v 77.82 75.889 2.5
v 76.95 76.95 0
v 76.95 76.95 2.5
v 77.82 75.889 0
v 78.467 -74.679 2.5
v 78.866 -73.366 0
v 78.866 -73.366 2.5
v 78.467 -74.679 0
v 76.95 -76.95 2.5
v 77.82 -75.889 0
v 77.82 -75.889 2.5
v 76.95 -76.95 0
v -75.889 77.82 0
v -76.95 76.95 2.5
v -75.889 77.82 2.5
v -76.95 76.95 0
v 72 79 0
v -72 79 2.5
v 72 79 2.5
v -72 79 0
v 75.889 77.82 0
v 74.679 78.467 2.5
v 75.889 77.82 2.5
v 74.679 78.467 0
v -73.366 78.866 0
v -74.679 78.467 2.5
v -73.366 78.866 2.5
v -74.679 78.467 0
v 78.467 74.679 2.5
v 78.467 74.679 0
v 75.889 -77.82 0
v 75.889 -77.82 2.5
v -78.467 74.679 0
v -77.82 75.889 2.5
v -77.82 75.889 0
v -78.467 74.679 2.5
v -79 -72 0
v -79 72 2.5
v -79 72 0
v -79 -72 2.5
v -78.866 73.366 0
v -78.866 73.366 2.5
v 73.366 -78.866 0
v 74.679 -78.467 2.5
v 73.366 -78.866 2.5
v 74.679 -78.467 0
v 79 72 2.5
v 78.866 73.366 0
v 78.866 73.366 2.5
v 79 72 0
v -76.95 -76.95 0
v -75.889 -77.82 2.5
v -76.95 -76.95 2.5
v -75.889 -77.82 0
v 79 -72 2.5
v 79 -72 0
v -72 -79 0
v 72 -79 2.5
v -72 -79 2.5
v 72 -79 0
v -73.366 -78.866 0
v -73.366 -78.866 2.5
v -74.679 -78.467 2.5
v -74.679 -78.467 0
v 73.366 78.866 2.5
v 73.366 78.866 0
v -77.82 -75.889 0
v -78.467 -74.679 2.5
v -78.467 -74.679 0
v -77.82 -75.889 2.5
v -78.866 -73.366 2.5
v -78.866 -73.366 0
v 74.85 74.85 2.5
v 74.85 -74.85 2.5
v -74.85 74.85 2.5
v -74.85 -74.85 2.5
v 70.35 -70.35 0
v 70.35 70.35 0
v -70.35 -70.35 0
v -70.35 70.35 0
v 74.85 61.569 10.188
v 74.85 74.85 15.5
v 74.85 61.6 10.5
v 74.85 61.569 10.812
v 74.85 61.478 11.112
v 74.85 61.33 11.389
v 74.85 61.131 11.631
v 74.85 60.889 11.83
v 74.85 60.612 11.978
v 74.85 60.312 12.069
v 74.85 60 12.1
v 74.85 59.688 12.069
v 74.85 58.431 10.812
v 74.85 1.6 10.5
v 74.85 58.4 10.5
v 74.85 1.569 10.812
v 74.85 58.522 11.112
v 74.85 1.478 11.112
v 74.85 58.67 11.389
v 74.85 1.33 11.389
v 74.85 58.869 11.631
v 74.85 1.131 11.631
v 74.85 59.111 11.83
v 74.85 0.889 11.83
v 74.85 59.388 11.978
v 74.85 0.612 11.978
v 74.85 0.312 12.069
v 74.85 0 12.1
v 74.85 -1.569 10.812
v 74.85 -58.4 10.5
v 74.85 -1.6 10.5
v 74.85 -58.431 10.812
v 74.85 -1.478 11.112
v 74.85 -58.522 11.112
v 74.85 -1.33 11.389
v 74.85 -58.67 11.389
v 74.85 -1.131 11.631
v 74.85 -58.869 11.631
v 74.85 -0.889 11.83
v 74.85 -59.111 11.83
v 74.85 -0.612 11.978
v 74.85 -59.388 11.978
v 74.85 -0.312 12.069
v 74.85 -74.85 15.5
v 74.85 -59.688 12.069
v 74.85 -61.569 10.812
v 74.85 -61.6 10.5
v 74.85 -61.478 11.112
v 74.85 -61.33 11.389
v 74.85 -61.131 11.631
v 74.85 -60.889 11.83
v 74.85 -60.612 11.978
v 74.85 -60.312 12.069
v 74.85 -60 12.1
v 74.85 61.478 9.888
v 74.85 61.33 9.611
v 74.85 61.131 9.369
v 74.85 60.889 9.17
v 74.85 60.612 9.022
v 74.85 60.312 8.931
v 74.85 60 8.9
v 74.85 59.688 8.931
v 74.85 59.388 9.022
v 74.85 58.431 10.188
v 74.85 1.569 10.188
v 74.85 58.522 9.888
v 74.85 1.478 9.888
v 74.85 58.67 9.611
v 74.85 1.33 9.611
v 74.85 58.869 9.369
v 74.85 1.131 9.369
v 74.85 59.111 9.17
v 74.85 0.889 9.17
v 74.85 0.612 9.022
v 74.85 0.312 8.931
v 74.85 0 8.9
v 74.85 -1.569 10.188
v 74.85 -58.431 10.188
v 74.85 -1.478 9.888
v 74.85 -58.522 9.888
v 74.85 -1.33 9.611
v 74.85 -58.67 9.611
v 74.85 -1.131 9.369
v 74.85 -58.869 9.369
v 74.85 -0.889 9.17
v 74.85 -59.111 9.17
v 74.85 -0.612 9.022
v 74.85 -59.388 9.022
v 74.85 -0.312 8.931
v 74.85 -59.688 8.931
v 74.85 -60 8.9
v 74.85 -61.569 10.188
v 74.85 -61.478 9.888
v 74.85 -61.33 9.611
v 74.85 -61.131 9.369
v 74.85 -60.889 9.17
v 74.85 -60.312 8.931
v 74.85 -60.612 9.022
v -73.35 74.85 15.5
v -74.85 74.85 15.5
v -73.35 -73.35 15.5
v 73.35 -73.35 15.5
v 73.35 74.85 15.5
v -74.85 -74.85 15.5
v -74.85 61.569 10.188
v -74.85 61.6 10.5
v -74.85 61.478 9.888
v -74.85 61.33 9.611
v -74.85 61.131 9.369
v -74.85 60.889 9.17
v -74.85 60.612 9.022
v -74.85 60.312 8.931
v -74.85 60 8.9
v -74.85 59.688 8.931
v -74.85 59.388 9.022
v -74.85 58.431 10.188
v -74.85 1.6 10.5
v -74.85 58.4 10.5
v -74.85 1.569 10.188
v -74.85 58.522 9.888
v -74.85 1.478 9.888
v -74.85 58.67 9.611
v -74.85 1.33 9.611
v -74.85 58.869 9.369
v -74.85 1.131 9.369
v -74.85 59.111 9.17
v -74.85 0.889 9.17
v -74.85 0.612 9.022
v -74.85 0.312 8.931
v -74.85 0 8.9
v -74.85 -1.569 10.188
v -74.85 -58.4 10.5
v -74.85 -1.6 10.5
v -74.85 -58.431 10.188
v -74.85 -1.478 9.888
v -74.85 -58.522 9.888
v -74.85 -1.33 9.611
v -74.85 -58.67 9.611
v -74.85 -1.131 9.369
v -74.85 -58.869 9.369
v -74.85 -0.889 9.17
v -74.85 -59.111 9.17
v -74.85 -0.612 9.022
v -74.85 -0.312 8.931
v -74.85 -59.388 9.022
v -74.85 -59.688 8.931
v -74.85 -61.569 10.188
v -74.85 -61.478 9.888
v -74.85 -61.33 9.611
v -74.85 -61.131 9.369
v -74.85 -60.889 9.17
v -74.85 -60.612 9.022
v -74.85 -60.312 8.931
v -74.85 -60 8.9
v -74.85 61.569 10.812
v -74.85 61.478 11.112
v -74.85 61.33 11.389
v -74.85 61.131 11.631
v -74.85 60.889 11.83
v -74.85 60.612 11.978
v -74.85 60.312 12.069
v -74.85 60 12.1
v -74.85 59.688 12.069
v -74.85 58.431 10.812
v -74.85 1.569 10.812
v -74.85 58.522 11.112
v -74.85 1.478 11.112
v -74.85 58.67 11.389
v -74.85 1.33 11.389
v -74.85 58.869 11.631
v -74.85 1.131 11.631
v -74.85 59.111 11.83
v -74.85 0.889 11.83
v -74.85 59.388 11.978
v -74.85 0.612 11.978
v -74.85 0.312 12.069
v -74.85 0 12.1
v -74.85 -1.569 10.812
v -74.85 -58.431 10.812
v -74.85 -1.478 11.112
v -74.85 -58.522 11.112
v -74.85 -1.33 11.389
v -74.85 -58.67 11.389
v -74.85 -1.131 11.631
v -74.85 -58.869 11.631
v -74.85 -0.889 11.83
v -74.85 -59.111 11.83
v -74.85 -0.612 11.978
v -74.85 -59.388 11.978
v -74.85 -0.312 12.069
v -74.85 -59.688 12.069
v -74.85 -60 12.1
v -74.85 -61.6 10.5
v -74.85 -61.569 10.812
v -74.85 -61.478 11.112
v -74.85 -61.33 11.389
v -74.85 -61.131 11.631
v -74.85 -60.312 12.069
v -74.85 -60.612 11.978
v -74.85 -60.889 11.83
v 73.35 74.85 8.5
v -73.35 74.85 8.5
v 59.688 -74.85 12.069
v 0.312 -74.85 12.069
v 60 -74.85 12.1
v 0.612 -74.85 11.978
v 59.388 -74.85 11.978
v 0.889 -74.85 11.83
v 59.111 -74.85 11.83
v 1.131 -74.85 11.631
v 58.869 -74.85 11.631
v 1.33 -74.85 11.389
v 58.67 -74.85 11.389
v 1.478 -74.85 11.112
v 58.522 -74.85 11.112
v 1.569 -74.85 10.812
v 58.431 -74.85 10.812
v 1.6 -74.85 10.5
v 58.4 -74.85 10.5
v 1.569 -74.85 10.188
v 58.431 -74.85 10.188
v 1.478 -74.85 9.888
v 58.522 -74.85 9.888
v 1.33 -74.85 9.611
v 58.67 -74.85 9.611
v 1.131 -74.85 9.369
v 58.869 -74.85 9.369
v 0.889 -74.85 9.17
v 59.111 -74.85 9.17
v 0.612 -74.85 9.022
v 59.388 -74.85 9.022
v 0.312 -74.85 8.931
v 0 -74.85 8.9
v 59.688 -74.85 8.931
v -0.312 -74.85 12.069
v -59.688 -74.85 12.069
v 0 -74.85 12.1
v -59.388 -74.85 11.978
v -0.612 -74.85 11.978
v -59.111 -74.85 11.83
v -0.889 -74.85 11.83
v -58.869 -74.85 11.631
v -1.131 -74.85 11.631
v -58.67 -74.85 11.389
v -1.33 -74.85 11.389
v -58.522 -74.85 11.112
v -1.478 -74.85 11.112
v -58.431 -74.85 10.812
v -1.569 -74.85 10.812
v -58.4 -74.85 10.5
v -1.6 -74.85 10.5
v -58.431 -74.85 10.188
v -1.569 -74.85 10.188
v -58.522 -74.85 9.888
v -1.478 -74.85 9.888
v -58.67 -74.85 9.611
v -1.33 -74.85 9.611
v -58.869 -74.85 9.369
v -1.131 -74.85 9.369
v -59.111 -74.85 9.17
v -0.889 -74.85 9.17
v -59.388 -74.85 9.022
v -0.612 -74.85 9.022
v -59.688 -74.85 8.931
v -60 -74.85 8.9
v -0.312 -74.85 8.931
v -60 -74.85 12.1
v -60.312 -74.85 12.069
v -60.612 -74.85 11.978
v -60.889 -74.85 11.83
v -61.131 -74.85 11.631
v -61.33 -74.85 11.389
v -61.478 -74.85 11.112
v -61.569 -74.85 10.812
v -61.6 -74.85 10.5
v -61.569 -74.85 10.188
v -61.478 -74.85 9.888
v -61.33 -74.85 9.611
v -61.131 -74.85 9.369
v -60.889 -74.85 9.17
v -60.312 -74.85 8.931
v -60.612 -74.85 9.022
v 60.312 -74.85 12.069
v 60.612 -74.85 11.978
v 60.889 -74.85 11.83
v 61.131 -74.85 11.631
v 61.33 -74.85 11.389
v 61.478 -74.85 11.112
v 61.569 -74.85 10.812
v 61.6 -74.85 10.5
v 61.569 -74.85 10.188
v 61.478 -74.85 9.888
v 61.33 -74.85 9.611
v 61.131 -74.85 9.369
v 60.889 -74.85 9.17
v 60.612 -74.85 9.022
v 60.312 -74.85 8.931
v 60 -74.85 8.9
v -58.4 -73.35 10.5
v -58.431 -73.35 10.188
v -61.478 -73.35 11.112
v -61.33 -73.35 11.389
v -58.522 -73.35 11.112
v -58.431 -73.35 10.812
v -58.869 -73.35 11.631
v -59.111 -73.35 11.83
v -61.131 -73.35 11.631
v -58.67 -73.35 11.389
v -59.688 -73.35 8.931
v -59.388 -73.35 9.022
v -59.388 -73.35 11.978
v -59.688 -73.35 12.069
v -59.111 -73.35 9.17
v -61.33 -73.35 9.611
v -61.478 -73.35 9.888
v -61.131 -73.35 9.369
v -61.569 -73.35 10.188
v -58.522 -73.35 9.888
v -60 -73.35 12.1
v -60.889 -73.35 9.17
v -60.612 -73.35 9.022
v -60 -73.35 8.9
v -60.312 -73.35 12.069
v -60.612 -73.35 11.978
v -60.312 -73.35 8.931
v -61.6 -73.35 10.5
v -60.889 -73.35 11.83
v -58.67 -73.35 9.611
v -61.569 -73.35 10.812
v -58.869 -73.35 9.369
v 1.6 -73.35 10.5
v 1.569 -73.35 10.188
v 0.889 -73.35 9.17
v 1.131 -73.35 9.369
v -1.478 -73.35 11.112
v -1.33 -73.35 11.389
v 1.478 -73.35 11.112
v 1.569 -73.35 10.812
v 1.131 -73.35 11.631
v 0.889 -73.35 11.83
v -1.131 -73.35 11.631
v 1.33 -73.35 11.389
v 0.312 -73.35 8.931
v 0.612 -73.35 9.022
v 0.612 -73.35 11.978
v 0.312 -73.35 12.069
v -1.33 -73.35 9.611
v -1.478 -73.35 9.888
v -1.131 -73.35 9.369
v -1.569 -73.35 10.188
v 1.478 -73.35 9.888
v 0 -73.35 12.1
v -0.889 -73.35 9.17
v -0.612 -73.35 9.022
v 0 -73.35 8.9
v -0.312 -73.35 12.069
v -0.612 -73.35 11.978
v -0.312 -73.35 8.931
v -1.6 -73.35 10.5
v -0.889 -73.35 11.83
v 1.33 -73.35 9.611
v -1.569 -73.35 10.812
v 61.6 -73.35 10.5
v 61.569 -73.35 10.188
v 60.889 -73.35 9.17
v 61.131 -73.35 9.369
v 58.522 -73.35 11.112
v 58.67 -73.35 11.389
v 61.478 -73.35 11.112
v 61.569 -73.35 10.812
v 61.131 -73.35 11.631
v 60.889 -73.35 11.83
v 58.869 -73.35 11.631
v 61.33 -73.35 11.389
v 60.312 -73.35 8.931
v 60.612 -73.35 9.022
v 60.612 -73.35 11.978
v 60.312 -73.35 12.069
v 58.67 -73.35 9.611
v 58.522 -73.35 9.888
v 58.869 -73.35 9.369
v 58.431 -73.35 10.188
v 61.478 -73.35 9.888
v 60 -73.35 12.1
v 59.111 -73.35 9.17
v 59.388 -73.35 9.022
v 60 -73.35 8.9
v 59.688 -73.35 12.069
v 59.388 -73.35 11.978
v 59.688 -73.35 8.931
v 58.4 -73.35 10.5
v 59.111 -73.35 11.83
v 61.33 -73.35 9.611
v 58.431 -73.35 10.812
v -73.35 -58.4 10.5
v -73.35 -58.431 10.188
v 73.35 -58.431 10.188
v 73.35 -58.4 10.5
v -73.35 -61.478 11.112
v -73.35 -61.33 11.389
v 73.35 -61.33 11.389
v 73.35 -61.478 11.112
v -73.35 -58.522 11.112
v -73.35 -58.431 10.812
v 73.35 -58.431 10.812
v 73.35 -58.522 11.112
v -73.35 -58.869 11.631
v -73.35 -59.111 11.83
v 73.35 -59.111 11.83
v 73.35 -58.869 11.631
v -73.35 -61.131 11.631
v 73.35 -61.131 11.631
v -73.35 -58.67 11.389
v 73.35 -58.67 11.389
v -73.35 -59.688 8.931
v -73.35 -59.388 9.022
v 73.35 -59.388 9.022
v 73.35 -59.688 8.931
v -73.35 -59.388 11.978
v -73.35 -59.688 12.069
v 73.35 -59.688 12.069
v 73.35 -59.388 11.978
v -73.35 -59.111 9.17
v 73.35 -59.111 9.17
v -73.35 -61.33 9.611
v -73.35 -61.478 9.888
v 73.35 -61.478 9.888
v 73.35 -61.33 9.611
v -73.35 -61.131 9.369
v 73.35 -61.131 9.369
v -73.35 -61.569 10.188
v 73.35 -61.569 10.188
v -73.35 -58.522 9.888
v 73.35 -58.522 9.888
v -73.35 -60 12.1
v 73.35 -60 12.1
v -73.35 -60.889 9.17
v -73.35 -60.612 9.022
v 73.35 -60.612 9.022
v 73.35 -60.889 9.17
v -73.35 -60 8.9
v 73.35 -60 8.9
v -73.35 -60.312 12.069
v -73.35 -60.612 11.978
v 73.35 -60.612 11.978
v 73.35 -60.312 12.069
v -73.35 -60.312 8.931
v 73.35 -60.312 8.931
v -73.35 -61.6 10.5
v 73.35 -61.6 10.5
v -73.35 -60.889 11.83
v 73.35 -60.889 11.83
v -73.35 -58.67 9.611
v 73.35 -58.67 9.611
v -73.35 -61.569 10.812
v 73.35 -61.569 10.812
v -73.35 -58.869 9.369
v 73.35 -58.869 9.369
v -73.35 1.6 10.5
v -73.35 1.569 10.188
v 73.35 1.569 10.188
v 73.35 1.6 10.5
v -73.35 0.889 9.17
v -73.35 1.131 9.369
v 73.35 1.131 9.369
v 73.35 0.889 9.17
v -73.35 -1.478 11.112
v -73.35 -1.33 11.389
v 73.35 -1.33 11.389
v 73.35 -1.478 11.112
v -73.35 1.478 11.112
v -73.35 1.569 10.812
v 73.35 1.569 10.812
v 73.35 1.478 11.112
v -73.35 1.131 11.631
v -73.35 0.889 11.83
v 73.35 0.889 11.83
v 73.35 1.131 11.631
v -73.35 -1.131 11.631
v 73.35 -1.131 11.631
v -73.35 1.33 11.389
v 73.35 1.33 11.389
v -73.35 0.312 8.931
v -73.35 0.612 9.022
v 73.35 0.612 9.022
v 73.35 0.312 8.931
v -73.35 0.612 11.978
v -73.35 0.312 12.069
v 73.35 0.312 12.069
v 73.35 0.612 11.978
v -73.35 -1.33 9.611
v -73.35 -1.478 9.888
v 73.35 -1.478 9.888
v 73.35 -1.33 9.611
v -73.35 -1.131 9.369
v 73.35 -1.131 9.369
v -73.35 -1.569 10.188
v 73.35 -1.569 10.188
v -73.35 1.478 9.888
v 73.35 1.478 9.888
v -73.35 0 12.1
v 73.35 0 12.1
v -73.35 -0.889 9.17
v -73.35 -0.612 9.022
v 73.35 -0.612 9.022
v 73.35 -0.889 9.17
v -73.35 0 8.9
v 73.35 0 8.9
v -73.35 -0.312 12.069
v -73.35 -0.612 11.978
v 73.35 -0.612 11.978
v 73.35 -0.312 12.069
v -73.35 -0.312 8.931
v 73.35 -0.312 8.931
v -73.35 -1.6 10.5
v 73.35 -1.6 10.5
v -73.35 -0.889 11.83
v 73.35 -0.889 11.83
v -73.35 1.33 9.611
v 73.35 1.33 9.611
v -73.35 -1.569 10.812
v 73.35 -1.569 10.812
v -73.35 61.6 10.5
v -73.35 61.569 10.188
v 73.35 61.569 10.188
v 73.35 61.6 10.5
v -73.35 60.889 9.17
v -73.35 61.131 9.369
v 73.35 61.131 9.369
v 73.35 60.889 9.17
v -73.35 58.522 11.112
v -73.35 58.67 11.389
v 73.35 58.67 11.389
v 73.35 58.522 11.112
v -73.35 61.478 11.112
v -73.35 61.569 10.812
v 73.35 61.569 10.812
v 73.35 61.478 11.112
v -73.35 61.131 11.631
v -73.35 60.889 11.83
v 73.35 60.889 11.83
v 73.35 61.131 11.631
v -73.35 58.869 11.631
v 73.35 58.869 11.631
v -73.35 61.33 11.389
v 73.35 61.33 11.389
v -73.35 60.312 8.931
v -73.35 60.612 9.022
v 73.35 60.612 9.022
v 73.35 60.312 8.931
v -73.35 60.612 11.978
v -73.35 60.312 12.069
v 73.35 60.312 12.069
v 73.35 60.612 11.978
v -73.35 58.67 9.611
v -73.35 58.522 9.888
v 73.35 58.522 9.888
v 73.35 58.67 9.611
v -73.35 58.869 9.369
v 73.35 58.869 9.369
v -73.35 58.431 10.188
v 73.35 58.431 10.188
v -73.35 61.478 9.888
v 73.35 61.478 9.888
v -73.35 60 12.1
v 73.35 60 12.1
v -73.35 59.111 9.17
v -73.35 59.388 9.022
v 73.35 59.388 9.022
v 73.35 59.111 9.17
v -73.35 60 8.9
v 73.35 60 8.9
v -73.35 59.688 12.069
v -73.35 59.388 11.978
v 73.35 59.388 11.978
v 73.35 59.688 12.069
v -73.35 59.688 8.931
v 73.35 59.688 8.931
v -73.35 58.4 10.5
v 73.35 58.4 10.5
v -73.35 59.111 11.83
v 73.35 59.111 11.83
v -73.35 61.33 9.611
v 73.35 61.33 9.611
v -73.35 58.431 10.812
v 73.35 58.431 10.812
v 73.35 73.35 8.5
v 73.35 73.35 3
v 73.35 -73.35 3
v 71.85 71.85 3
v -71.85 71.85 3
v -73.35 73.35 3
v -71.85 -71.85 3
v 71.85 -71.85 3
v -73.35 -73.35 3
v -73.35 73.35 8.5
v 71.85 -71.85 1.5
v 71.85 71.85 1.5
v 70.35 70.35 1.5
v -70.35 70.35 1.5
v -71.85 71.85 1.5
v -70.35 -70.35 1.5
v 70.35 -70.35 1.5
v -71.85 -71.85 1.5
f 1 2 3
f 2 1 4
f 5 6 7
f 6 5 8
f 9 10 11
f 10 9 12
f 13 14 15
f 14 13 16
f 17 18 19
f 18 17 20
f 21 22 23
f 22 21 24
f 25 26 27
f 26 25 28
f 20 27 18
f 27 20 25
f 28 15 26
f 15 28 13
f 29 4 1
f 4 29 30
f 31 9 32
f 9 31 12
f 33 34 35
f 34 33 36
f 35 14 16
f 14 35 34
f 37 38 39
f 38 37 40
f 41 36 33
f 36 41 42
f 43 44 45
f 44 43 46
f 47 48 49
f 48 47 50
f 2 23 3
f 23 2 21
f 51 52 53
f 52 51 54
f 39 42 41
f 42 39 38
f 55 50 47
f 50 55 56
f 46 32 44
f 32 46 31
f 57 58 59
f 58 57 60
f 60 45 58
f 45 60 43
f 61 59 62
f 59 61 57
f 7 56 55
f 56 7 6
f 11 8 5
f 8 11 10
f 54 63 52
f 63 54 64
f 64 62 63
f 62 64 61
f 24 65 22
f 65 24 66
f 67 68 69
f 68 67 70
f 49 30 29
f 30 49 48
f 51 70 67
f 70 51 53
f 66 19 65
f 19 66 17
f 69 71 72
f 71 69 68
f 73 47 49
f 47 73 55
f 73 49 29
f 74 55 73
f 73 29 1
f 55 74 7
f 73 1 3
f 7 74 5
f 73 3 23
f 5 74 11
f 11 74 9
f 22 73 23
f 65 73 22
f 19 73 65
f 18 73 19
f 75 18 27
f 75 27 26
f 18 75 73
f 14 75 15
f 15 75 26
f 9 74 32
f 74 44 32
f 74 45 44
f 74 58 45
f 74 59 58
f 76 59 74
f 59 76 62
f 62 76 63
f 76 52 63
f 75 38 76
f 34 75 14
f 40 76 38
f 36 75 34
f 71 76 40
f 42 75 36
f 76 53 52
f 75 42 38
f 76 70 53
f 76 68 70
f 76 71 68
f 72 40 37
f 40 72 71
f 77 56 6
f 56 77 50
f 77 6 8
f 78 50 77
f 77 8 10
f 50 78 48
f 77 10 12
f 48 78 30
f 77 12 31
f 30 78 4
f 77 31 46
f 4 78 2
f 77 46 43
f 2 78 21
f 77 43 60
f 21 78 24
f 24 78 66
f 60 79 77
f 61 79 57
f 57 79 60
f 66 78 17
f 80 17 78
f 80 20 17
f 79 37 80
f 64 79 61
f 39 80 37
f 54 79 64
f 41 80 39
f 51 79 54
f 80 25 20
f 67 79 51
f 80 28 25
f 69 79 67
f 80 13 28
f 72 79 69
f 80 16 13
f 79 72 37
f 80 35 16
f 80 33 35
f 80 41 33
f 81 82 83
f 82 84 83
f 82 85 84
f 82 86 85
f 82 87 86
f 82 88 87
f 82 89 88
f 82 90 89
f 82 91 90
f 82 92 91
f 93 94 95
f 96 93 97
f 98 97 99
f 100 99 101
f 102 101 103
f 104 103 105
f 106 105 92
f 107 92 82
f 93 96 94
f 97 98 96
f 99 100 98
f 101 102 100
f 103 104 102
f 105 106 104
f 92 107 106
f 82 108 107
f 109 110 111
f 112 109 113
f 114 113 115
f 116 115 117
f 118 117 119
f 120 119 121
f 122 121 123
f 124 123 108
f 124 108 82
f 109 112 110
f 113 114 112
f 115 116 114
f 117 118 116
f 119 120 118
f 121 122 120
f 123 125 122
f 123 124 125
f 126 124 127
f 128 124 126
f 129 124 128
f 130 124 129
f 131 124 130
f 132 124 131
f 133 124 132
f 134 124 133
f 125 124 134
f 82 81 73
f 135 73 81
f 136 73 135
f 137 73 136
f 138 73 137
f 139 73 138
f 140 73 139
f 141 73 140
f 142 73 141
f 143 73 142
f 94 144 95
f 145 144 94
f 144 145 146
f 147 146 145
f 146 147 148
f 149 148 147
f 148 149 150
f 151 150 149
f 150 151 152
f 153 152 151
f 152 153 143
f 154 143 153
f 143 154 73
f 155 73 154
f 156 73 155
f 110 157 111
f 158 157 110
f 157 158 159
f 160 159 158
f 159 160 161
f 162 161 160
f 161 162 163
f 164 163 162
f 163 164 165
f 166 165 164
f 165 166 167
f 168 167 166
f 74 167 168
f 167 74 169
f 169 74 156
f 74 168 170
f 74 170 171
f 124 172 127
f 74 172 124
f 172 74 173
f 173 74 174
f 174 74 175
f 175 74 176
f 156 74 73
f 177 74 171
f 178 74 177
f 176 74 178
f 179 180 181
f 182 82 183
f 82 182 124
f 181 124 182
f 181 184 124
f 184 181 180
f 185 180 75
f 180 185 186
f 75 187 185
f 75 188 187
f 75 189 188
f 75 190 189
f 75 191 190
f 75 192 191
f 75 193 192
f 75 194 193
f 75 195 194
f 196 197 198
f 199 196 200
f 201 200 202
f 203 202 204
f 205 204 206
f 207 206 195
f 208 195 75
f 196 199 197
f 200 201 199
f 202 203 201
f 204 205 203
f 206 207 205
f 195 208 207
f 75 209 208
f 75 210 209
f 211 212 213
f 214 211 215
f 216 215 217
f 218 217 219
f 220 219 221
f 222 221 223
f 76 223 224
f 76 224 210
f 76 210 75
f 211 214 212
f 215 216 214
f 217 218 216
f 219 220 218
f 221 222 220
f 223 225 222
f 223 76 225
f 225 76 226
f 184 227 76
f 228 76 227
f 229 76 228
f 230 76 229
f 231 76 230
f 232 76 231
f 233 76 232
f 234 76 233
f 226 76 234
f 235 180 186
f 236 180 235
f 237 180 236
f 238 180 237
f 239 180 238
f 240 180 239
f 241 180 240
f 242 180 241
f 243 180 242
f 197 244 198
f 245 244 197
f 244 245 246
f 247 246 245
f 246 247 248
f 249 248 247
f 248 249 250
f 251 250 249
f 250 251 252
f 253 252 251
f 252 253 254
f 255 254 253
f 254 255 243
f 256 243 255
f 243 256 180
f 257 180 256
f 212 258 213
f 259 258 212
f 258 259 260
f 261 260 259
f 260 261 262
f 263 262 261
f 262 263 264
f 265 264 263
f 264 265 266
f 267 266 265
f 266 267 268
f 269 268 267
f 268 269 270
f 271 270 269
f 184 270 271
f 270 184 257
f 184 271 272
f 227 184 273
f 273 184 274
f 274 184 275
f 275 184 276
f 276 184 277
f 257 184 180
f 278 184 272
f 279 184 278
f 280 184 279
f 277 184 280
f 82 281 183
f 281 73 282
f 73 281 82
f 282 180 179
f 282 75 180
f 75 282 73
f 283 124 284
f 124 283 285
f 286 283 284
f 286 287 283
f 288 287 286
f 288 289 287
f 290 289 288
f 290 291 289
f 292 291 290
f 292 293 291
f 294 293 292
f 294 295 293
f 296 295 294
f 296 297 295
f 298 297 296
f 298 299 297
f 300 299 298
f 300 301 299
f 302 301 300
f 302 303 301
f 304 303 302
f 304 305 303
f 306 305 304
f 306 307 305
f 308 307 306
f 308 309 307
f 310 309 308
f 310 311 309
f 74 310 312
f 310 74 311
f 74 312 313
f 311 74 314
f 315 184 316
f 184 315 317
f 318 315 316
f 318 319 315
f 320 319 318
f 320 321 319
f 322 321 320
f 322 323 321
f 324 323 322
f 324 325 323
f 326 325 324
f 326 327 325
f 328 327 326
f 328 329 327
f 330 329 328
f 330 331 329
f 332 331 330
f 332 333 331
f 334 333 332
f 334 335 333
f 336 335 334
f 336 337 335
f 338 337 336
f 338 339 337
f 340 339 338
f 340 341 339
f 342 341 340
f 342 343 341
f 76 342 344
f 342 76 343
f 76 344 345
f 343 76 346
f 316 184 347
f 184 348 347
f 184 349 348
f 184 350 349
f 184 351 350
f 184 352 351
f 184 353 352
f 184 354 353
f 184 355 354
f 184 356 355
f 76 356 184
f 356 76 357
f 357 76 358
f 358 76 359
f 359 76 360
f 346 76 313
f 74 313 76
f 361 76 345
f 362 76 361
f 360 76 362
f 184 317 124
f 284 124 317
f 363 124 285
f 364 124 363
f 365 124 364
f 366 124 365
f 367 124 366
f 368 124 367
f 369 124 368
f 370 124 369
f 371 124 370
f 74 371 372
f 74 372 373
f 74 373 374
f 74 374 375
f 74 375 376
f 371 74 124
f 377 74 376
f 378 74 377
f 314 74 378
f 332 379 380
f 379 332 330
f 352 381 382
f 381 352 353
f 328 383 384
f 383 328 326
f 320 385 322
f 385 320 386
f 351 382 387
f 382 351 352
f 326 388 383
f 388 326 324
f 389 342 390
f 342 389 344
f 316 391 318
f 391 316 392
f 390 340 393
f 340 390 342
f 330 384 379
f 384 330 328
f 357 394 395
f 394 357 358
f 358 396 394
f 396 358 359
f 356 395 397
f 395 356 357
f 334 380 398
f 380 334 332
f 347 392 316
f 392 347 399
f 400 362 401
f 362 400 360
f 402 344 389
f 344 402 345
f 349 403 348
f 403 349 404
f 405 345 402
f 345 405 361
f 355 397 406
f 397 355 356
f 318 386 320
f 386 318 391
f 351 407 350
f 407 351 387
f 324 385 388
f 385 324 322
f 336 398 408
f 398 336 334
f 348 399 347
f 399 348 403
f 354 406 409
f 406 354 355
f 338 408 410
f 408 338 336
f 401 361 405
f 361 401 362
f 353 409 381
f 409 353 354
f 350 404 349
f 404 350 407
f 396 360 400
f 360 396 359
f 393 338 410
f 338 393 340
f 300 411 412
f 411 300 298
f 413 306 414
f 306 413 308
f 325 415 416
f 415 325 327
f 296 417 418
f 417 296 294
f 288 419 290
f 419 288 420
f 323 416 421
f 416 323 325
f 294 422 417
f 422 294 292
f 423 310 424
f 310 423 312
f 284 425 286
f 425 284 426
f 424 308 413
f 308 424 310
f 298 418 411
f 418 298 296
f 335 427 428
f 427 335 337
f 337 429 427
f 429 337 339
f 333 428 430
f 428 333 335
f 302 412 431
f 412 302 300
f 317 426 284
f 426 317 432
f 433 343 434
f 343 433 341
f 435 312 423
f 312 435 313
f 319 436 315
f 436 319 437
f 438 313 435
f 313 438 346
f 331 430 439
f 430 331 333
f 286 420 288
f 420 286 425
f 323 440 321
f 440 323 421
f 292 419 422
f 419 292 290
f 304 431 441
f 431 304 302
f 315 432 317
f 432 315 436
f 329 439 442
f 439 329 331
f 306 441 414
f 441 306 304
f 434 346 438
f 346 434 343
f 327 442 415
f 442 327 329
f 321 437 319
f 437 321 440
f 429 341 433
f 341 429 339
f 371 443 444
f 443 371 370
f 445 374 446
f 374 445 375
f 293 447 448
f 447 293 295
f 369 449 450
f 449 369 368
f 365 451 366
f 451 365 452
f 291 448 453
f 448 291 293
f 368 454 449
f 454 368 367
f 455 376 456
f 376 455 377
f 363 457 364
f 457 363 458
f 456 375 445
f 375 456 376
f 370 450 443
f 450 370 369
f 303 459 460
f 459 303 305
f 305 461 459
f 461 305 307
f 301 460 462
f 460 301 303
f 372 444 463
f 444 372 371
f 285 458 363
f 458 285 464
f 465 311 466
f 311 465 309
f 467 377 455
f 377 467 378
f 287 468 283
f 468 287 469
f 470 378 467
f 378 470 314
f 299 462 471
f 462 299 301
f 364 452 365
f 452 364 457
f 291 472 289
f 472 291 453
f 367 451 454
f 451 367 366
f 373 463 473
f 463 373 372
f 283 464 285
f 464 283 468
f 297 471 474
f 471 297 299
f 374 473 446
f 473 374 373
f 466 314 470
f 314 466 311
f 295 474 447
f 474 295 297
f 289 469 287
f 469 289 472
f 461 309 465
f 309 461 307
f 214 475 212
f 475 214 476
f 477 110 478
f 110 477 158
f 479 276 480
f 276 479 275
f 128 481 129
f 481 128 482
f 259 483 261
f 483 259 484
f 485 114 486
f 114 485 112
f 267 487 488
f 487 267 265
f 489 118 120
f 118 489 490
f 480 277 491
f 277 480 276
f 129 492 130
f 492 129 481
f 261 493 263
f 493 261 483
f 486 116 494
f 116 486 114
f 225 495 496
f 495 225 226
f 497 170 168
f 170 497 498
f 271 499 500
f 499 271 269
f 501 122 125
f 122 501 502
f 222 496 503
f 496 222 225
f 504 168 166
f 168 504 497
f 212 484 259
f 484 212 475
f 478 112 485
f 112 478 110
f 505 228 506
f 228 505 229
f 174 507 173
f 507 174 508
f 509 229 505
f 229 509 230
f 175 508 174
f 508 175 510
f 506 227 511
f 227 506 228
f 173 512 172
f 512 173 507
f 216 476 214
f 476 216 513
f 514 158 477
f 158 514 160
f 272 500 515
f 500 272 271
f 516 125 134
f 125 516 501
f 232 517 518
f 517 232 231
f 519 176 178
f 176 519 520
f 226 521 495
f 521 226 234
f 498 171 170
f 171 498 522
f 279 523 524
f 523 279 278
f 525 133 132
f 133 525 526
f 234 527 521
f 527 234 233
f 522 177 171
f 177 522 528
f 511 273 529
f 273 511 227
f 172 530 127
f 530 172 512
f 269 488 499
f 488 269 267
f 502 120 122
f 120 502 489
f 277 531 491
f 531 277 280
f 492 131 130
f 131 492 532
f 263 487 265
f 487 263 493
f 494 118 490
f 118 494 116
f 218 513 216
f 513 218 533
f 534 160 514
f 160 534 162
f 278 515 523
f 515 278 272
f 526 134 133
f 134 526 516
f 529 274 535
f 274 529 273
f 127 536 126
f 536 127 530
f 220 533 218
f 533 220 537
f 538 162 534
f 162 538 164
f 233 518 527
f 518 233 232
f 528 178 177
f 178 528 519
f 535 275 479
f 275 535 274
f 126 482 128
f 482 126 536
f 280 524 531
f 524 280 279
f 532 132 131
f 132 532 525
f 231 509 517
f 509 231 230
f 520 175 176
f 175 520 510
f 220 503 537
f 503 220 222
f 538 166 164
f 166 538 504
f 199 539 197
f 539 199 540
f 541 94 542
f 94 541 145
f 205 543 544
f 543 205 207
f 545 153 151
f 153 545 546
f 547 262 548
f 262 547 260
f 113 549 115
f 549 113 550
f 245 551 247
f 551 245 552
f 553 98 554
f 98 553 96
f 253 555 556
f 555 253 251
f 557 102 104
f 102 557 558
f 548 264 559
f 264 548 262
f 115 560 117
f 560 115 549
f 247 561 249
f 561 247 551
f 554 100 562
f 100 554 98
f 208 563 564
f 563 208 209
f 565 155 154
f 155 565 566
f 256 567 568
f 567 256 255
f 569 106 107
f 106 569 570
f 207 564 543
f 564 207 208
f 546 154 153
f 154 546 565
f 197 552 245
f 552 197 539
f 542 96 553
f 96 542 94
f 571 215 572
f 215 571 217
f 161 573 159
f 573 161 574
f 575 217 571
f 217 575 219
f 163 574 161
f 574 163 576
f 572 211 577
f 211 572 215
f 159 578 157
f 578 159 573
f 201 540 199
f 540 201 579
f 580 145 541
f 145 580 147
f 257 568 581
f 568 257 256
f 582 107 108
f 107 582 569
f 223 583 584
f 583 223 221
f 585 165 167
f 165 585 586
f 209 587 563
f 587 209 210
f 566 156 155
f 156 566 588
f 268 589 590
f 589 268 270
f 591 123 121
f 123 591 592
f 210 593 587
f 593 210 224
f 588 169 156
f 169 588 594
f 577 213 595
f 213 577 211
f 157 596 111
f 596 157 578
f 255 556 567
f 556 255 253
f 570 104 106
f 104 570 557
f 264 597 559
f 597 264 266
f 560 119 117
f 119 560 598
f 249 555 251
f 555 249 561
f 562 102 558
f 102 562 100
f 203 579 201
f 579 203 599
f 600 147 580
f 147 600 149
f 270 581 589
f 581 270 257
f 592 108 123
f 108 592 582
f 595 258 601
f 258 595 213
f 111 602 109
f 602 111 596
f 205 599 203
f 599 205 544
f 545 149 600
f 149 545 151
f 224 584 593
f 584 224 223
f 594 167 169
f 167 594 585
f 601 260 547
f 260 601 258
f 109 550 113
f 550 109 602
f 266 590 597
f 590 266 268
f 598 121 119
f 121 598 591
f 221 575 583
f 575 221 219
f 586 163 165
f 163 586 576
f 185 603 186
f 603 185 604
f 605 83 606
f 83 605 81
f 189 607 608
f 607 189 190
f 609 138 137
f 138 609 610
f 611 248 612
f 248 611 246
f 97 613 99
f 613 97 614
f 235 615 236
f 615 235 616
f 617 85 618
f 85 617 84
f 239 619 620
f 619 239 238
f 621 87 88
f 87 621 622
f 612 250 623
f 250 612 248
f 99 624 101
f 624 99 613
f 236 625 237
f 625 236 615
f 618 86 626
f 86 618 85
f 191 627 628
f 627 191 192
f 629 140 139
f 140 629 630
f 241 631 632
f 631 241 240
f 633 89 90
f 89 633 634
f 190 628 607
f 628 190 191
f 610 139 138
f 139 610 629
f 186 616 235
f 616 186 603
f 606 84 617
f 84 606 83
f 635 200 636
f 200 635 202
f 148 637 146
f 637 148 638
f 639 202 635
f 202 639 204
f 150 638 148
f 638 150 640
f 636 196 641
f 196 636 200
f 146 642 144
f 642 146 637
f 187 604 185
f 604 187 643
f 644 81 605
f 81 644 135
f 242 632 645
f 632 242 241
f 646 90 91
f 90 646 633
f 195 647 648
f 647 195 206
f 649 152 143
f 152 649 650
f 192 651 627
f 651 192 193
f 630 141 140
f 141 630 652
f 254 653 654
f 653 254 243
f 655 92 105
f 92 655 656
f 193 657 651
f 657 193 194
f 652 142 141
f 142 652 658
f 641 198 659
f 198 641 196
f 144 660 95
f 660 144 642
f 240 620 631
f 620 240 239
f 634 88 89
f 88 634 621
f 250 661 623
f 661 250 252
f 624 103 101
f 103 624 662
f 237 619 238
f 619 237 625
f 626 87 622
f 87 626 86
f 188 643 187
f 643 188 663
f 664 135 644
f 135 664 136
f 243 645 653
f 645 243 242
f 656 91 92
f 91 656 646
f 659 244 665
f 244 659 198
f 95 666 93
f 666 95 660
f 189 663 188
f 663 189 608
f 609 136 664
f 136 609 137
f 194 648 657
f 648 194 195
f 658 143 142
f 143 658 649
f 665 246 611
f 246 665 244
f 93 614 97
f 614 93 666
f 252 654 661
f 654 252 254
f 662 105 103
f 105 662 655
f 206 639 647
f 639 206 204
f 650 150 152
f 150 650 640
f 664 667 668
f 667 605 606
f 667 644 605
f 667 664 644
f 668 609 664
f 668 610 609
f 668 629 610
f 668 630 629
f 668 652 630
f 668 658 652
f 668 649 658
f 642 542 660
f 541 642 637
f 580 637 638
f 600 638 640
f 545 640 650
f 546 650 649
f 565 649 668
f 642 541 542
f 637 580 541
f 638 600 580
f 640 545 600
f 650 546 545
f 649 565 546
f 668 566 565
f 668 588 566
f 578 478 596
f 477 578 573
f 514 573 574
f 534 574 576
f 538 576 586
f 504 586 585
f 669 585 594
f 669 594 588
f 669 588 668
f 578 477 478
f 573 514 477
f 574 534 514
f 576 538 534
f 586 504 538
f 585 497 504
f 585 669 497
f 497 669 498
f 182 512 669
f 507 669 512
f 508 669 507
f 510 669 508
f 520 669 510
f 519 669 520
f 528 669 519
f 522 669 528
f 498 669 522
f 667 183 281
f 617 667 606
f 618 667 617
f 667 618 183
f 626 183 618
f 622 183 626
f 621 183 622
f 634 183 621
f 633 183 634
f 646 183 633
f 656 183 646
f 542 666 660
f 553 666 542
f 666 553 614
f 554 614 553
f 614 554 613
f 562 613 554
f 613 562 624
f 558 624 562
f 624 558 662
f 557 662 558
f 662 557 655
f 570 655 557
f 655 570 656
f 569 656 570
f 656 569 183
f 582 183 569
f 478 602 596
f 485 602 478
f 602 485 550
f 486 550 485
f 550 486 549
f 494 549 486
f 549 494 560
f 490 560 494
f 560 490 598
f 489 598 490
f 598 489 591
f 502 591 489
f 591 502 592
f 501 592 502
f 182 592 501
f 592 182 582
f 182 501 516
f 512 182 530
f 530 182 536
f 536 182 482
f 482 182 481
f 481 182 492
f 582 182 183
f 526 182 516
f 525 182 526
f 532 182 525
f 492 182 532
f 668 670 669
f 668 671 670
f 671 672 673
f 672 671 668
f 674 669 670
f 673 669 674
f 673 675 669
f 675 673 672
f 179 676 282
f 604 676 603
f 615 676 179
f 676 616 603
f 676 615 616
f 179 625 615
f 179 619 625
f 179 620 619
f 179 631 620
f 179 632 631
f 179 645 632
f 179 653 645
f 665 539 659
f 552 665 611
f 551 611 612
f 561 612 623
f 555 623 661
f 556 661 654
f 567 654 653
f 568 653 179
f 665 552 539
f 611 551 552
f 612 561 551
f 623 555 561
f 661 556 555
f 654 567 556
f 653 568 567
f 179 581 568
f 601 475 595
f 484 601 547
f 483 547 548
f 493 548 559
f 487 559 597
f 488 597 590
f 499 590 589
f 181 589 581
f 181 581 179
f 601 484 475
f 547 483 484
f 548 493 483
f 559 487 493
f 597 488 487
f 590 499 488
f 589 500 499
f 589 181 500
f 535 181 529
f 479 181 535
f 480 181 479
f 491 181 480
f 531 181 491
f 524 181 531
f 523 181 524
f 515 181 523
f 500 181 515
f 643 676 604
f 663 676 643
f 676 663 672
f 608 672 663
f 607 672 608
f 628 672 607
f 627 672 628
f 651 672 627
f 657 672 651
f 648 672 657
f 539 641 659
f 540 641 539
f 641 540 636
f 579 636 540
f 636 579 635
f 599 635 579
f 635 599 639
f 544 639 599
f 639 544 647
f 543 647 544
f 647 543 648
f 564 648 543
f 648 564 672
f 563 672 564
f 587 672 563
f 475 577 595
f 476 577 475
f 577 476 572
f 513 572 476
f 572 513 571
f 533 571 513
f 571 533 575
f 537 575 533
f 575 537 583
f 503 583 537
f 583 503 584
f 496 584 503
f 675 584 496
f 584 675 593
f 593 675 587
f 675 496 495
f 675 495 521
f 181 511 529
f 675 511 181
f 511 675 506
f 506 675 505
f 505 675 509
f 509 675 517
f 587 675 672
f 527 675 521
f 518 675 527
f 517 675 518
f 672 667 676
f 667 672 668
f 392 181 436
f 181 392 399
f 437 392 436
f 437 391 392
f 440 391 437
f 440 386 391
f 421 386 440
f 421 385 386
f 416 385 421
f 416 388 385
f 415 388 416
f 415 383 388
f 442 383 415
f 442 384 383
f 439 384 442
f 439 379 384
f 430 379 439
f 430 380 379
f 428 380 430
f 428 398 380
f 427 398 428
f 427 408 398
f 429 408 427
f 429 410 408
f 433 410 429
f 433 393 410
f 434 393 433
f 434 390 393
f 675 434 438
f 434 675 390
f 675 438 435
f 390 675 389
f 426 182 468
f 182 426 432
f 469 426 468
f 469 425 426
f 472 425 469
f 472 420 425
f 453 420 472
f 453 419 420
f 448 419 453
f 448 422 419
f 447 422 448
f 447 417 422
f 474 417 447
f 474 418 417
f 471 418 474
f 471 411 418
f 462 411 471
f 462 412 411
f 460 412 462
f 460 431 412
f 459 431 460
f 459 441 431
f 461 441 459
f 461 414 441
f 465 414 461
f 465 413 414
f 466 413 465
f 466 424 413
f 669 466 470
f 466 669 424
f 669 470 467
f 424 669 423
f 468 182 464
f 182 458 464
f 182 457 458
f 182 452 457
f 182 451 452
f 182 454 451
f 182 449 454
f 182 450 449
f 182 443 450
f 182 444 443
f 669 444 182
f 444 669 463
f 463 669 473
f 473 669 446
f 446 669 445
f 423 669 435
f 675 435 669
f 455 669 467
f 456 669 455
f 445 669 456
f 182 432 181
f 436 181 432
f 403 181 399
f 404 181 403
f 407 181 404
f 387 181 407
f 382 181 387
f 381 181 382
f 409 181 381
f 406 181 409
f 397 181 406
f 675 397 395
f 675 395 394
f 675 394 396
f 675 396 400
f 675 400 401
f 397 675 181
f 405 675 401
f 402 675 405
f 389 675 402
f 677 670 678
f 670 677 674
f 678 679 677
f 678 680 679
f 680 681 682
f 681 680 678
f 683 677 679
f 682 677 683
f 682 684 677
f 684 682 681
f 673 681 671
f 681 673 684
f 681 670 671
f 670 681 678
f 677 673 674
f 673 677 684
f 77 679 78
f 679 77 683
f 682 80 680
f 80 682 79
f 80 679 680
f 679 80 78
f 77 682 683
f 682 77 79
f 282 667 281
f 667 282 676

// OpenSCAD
GGL=4*25.4+1;
GGW=5*25.4+1.5;
GGT=1/16*25.4+0.5;
OH=5;
F=10;
TT=2.5;

difference() {
    union() {
        cube_center([158,158,TT], r=7);
        cube_center([149.7,149.7,TT+13]);
    }
    
    translate([0,0,3])
    cube_center([149.7-3,149.7-3,50]);
    
    translate([0,0,1.5])
    cube_center([149.7-3-3,149.7-3-3,50]);
    
    cube_center([149.7-3-6,149.7-3-6,50]);
    
    translate([0,5,TT+3+3])
    cube_center([149.7-3,149.7-3,50]);
    
    for(t=[0,1])
    rotate([0,0,t*90])
    for(s=[-1:1])
    translate([s*60,0,TT+13-5])
    rotate([90,0,0,])
    cylinder(d=3.2,h=200,$fn=32,center=true);
    
}

module cube_center(dims,r=0) {
    if(r==0) {
        translate([-dims[0]/2, -dims[1]/2, 0])
        cube(dims);
    } else {
        
        minkowski() {
            translate([-dims[0]/2+r, -dims[1]/2+r, 0])
            cube([dims[0]-2*r,dims[1]-2*r,dims[2]]);
            cylinder(r=r,h=0.00001,$fn=32);
        }
    }
}
